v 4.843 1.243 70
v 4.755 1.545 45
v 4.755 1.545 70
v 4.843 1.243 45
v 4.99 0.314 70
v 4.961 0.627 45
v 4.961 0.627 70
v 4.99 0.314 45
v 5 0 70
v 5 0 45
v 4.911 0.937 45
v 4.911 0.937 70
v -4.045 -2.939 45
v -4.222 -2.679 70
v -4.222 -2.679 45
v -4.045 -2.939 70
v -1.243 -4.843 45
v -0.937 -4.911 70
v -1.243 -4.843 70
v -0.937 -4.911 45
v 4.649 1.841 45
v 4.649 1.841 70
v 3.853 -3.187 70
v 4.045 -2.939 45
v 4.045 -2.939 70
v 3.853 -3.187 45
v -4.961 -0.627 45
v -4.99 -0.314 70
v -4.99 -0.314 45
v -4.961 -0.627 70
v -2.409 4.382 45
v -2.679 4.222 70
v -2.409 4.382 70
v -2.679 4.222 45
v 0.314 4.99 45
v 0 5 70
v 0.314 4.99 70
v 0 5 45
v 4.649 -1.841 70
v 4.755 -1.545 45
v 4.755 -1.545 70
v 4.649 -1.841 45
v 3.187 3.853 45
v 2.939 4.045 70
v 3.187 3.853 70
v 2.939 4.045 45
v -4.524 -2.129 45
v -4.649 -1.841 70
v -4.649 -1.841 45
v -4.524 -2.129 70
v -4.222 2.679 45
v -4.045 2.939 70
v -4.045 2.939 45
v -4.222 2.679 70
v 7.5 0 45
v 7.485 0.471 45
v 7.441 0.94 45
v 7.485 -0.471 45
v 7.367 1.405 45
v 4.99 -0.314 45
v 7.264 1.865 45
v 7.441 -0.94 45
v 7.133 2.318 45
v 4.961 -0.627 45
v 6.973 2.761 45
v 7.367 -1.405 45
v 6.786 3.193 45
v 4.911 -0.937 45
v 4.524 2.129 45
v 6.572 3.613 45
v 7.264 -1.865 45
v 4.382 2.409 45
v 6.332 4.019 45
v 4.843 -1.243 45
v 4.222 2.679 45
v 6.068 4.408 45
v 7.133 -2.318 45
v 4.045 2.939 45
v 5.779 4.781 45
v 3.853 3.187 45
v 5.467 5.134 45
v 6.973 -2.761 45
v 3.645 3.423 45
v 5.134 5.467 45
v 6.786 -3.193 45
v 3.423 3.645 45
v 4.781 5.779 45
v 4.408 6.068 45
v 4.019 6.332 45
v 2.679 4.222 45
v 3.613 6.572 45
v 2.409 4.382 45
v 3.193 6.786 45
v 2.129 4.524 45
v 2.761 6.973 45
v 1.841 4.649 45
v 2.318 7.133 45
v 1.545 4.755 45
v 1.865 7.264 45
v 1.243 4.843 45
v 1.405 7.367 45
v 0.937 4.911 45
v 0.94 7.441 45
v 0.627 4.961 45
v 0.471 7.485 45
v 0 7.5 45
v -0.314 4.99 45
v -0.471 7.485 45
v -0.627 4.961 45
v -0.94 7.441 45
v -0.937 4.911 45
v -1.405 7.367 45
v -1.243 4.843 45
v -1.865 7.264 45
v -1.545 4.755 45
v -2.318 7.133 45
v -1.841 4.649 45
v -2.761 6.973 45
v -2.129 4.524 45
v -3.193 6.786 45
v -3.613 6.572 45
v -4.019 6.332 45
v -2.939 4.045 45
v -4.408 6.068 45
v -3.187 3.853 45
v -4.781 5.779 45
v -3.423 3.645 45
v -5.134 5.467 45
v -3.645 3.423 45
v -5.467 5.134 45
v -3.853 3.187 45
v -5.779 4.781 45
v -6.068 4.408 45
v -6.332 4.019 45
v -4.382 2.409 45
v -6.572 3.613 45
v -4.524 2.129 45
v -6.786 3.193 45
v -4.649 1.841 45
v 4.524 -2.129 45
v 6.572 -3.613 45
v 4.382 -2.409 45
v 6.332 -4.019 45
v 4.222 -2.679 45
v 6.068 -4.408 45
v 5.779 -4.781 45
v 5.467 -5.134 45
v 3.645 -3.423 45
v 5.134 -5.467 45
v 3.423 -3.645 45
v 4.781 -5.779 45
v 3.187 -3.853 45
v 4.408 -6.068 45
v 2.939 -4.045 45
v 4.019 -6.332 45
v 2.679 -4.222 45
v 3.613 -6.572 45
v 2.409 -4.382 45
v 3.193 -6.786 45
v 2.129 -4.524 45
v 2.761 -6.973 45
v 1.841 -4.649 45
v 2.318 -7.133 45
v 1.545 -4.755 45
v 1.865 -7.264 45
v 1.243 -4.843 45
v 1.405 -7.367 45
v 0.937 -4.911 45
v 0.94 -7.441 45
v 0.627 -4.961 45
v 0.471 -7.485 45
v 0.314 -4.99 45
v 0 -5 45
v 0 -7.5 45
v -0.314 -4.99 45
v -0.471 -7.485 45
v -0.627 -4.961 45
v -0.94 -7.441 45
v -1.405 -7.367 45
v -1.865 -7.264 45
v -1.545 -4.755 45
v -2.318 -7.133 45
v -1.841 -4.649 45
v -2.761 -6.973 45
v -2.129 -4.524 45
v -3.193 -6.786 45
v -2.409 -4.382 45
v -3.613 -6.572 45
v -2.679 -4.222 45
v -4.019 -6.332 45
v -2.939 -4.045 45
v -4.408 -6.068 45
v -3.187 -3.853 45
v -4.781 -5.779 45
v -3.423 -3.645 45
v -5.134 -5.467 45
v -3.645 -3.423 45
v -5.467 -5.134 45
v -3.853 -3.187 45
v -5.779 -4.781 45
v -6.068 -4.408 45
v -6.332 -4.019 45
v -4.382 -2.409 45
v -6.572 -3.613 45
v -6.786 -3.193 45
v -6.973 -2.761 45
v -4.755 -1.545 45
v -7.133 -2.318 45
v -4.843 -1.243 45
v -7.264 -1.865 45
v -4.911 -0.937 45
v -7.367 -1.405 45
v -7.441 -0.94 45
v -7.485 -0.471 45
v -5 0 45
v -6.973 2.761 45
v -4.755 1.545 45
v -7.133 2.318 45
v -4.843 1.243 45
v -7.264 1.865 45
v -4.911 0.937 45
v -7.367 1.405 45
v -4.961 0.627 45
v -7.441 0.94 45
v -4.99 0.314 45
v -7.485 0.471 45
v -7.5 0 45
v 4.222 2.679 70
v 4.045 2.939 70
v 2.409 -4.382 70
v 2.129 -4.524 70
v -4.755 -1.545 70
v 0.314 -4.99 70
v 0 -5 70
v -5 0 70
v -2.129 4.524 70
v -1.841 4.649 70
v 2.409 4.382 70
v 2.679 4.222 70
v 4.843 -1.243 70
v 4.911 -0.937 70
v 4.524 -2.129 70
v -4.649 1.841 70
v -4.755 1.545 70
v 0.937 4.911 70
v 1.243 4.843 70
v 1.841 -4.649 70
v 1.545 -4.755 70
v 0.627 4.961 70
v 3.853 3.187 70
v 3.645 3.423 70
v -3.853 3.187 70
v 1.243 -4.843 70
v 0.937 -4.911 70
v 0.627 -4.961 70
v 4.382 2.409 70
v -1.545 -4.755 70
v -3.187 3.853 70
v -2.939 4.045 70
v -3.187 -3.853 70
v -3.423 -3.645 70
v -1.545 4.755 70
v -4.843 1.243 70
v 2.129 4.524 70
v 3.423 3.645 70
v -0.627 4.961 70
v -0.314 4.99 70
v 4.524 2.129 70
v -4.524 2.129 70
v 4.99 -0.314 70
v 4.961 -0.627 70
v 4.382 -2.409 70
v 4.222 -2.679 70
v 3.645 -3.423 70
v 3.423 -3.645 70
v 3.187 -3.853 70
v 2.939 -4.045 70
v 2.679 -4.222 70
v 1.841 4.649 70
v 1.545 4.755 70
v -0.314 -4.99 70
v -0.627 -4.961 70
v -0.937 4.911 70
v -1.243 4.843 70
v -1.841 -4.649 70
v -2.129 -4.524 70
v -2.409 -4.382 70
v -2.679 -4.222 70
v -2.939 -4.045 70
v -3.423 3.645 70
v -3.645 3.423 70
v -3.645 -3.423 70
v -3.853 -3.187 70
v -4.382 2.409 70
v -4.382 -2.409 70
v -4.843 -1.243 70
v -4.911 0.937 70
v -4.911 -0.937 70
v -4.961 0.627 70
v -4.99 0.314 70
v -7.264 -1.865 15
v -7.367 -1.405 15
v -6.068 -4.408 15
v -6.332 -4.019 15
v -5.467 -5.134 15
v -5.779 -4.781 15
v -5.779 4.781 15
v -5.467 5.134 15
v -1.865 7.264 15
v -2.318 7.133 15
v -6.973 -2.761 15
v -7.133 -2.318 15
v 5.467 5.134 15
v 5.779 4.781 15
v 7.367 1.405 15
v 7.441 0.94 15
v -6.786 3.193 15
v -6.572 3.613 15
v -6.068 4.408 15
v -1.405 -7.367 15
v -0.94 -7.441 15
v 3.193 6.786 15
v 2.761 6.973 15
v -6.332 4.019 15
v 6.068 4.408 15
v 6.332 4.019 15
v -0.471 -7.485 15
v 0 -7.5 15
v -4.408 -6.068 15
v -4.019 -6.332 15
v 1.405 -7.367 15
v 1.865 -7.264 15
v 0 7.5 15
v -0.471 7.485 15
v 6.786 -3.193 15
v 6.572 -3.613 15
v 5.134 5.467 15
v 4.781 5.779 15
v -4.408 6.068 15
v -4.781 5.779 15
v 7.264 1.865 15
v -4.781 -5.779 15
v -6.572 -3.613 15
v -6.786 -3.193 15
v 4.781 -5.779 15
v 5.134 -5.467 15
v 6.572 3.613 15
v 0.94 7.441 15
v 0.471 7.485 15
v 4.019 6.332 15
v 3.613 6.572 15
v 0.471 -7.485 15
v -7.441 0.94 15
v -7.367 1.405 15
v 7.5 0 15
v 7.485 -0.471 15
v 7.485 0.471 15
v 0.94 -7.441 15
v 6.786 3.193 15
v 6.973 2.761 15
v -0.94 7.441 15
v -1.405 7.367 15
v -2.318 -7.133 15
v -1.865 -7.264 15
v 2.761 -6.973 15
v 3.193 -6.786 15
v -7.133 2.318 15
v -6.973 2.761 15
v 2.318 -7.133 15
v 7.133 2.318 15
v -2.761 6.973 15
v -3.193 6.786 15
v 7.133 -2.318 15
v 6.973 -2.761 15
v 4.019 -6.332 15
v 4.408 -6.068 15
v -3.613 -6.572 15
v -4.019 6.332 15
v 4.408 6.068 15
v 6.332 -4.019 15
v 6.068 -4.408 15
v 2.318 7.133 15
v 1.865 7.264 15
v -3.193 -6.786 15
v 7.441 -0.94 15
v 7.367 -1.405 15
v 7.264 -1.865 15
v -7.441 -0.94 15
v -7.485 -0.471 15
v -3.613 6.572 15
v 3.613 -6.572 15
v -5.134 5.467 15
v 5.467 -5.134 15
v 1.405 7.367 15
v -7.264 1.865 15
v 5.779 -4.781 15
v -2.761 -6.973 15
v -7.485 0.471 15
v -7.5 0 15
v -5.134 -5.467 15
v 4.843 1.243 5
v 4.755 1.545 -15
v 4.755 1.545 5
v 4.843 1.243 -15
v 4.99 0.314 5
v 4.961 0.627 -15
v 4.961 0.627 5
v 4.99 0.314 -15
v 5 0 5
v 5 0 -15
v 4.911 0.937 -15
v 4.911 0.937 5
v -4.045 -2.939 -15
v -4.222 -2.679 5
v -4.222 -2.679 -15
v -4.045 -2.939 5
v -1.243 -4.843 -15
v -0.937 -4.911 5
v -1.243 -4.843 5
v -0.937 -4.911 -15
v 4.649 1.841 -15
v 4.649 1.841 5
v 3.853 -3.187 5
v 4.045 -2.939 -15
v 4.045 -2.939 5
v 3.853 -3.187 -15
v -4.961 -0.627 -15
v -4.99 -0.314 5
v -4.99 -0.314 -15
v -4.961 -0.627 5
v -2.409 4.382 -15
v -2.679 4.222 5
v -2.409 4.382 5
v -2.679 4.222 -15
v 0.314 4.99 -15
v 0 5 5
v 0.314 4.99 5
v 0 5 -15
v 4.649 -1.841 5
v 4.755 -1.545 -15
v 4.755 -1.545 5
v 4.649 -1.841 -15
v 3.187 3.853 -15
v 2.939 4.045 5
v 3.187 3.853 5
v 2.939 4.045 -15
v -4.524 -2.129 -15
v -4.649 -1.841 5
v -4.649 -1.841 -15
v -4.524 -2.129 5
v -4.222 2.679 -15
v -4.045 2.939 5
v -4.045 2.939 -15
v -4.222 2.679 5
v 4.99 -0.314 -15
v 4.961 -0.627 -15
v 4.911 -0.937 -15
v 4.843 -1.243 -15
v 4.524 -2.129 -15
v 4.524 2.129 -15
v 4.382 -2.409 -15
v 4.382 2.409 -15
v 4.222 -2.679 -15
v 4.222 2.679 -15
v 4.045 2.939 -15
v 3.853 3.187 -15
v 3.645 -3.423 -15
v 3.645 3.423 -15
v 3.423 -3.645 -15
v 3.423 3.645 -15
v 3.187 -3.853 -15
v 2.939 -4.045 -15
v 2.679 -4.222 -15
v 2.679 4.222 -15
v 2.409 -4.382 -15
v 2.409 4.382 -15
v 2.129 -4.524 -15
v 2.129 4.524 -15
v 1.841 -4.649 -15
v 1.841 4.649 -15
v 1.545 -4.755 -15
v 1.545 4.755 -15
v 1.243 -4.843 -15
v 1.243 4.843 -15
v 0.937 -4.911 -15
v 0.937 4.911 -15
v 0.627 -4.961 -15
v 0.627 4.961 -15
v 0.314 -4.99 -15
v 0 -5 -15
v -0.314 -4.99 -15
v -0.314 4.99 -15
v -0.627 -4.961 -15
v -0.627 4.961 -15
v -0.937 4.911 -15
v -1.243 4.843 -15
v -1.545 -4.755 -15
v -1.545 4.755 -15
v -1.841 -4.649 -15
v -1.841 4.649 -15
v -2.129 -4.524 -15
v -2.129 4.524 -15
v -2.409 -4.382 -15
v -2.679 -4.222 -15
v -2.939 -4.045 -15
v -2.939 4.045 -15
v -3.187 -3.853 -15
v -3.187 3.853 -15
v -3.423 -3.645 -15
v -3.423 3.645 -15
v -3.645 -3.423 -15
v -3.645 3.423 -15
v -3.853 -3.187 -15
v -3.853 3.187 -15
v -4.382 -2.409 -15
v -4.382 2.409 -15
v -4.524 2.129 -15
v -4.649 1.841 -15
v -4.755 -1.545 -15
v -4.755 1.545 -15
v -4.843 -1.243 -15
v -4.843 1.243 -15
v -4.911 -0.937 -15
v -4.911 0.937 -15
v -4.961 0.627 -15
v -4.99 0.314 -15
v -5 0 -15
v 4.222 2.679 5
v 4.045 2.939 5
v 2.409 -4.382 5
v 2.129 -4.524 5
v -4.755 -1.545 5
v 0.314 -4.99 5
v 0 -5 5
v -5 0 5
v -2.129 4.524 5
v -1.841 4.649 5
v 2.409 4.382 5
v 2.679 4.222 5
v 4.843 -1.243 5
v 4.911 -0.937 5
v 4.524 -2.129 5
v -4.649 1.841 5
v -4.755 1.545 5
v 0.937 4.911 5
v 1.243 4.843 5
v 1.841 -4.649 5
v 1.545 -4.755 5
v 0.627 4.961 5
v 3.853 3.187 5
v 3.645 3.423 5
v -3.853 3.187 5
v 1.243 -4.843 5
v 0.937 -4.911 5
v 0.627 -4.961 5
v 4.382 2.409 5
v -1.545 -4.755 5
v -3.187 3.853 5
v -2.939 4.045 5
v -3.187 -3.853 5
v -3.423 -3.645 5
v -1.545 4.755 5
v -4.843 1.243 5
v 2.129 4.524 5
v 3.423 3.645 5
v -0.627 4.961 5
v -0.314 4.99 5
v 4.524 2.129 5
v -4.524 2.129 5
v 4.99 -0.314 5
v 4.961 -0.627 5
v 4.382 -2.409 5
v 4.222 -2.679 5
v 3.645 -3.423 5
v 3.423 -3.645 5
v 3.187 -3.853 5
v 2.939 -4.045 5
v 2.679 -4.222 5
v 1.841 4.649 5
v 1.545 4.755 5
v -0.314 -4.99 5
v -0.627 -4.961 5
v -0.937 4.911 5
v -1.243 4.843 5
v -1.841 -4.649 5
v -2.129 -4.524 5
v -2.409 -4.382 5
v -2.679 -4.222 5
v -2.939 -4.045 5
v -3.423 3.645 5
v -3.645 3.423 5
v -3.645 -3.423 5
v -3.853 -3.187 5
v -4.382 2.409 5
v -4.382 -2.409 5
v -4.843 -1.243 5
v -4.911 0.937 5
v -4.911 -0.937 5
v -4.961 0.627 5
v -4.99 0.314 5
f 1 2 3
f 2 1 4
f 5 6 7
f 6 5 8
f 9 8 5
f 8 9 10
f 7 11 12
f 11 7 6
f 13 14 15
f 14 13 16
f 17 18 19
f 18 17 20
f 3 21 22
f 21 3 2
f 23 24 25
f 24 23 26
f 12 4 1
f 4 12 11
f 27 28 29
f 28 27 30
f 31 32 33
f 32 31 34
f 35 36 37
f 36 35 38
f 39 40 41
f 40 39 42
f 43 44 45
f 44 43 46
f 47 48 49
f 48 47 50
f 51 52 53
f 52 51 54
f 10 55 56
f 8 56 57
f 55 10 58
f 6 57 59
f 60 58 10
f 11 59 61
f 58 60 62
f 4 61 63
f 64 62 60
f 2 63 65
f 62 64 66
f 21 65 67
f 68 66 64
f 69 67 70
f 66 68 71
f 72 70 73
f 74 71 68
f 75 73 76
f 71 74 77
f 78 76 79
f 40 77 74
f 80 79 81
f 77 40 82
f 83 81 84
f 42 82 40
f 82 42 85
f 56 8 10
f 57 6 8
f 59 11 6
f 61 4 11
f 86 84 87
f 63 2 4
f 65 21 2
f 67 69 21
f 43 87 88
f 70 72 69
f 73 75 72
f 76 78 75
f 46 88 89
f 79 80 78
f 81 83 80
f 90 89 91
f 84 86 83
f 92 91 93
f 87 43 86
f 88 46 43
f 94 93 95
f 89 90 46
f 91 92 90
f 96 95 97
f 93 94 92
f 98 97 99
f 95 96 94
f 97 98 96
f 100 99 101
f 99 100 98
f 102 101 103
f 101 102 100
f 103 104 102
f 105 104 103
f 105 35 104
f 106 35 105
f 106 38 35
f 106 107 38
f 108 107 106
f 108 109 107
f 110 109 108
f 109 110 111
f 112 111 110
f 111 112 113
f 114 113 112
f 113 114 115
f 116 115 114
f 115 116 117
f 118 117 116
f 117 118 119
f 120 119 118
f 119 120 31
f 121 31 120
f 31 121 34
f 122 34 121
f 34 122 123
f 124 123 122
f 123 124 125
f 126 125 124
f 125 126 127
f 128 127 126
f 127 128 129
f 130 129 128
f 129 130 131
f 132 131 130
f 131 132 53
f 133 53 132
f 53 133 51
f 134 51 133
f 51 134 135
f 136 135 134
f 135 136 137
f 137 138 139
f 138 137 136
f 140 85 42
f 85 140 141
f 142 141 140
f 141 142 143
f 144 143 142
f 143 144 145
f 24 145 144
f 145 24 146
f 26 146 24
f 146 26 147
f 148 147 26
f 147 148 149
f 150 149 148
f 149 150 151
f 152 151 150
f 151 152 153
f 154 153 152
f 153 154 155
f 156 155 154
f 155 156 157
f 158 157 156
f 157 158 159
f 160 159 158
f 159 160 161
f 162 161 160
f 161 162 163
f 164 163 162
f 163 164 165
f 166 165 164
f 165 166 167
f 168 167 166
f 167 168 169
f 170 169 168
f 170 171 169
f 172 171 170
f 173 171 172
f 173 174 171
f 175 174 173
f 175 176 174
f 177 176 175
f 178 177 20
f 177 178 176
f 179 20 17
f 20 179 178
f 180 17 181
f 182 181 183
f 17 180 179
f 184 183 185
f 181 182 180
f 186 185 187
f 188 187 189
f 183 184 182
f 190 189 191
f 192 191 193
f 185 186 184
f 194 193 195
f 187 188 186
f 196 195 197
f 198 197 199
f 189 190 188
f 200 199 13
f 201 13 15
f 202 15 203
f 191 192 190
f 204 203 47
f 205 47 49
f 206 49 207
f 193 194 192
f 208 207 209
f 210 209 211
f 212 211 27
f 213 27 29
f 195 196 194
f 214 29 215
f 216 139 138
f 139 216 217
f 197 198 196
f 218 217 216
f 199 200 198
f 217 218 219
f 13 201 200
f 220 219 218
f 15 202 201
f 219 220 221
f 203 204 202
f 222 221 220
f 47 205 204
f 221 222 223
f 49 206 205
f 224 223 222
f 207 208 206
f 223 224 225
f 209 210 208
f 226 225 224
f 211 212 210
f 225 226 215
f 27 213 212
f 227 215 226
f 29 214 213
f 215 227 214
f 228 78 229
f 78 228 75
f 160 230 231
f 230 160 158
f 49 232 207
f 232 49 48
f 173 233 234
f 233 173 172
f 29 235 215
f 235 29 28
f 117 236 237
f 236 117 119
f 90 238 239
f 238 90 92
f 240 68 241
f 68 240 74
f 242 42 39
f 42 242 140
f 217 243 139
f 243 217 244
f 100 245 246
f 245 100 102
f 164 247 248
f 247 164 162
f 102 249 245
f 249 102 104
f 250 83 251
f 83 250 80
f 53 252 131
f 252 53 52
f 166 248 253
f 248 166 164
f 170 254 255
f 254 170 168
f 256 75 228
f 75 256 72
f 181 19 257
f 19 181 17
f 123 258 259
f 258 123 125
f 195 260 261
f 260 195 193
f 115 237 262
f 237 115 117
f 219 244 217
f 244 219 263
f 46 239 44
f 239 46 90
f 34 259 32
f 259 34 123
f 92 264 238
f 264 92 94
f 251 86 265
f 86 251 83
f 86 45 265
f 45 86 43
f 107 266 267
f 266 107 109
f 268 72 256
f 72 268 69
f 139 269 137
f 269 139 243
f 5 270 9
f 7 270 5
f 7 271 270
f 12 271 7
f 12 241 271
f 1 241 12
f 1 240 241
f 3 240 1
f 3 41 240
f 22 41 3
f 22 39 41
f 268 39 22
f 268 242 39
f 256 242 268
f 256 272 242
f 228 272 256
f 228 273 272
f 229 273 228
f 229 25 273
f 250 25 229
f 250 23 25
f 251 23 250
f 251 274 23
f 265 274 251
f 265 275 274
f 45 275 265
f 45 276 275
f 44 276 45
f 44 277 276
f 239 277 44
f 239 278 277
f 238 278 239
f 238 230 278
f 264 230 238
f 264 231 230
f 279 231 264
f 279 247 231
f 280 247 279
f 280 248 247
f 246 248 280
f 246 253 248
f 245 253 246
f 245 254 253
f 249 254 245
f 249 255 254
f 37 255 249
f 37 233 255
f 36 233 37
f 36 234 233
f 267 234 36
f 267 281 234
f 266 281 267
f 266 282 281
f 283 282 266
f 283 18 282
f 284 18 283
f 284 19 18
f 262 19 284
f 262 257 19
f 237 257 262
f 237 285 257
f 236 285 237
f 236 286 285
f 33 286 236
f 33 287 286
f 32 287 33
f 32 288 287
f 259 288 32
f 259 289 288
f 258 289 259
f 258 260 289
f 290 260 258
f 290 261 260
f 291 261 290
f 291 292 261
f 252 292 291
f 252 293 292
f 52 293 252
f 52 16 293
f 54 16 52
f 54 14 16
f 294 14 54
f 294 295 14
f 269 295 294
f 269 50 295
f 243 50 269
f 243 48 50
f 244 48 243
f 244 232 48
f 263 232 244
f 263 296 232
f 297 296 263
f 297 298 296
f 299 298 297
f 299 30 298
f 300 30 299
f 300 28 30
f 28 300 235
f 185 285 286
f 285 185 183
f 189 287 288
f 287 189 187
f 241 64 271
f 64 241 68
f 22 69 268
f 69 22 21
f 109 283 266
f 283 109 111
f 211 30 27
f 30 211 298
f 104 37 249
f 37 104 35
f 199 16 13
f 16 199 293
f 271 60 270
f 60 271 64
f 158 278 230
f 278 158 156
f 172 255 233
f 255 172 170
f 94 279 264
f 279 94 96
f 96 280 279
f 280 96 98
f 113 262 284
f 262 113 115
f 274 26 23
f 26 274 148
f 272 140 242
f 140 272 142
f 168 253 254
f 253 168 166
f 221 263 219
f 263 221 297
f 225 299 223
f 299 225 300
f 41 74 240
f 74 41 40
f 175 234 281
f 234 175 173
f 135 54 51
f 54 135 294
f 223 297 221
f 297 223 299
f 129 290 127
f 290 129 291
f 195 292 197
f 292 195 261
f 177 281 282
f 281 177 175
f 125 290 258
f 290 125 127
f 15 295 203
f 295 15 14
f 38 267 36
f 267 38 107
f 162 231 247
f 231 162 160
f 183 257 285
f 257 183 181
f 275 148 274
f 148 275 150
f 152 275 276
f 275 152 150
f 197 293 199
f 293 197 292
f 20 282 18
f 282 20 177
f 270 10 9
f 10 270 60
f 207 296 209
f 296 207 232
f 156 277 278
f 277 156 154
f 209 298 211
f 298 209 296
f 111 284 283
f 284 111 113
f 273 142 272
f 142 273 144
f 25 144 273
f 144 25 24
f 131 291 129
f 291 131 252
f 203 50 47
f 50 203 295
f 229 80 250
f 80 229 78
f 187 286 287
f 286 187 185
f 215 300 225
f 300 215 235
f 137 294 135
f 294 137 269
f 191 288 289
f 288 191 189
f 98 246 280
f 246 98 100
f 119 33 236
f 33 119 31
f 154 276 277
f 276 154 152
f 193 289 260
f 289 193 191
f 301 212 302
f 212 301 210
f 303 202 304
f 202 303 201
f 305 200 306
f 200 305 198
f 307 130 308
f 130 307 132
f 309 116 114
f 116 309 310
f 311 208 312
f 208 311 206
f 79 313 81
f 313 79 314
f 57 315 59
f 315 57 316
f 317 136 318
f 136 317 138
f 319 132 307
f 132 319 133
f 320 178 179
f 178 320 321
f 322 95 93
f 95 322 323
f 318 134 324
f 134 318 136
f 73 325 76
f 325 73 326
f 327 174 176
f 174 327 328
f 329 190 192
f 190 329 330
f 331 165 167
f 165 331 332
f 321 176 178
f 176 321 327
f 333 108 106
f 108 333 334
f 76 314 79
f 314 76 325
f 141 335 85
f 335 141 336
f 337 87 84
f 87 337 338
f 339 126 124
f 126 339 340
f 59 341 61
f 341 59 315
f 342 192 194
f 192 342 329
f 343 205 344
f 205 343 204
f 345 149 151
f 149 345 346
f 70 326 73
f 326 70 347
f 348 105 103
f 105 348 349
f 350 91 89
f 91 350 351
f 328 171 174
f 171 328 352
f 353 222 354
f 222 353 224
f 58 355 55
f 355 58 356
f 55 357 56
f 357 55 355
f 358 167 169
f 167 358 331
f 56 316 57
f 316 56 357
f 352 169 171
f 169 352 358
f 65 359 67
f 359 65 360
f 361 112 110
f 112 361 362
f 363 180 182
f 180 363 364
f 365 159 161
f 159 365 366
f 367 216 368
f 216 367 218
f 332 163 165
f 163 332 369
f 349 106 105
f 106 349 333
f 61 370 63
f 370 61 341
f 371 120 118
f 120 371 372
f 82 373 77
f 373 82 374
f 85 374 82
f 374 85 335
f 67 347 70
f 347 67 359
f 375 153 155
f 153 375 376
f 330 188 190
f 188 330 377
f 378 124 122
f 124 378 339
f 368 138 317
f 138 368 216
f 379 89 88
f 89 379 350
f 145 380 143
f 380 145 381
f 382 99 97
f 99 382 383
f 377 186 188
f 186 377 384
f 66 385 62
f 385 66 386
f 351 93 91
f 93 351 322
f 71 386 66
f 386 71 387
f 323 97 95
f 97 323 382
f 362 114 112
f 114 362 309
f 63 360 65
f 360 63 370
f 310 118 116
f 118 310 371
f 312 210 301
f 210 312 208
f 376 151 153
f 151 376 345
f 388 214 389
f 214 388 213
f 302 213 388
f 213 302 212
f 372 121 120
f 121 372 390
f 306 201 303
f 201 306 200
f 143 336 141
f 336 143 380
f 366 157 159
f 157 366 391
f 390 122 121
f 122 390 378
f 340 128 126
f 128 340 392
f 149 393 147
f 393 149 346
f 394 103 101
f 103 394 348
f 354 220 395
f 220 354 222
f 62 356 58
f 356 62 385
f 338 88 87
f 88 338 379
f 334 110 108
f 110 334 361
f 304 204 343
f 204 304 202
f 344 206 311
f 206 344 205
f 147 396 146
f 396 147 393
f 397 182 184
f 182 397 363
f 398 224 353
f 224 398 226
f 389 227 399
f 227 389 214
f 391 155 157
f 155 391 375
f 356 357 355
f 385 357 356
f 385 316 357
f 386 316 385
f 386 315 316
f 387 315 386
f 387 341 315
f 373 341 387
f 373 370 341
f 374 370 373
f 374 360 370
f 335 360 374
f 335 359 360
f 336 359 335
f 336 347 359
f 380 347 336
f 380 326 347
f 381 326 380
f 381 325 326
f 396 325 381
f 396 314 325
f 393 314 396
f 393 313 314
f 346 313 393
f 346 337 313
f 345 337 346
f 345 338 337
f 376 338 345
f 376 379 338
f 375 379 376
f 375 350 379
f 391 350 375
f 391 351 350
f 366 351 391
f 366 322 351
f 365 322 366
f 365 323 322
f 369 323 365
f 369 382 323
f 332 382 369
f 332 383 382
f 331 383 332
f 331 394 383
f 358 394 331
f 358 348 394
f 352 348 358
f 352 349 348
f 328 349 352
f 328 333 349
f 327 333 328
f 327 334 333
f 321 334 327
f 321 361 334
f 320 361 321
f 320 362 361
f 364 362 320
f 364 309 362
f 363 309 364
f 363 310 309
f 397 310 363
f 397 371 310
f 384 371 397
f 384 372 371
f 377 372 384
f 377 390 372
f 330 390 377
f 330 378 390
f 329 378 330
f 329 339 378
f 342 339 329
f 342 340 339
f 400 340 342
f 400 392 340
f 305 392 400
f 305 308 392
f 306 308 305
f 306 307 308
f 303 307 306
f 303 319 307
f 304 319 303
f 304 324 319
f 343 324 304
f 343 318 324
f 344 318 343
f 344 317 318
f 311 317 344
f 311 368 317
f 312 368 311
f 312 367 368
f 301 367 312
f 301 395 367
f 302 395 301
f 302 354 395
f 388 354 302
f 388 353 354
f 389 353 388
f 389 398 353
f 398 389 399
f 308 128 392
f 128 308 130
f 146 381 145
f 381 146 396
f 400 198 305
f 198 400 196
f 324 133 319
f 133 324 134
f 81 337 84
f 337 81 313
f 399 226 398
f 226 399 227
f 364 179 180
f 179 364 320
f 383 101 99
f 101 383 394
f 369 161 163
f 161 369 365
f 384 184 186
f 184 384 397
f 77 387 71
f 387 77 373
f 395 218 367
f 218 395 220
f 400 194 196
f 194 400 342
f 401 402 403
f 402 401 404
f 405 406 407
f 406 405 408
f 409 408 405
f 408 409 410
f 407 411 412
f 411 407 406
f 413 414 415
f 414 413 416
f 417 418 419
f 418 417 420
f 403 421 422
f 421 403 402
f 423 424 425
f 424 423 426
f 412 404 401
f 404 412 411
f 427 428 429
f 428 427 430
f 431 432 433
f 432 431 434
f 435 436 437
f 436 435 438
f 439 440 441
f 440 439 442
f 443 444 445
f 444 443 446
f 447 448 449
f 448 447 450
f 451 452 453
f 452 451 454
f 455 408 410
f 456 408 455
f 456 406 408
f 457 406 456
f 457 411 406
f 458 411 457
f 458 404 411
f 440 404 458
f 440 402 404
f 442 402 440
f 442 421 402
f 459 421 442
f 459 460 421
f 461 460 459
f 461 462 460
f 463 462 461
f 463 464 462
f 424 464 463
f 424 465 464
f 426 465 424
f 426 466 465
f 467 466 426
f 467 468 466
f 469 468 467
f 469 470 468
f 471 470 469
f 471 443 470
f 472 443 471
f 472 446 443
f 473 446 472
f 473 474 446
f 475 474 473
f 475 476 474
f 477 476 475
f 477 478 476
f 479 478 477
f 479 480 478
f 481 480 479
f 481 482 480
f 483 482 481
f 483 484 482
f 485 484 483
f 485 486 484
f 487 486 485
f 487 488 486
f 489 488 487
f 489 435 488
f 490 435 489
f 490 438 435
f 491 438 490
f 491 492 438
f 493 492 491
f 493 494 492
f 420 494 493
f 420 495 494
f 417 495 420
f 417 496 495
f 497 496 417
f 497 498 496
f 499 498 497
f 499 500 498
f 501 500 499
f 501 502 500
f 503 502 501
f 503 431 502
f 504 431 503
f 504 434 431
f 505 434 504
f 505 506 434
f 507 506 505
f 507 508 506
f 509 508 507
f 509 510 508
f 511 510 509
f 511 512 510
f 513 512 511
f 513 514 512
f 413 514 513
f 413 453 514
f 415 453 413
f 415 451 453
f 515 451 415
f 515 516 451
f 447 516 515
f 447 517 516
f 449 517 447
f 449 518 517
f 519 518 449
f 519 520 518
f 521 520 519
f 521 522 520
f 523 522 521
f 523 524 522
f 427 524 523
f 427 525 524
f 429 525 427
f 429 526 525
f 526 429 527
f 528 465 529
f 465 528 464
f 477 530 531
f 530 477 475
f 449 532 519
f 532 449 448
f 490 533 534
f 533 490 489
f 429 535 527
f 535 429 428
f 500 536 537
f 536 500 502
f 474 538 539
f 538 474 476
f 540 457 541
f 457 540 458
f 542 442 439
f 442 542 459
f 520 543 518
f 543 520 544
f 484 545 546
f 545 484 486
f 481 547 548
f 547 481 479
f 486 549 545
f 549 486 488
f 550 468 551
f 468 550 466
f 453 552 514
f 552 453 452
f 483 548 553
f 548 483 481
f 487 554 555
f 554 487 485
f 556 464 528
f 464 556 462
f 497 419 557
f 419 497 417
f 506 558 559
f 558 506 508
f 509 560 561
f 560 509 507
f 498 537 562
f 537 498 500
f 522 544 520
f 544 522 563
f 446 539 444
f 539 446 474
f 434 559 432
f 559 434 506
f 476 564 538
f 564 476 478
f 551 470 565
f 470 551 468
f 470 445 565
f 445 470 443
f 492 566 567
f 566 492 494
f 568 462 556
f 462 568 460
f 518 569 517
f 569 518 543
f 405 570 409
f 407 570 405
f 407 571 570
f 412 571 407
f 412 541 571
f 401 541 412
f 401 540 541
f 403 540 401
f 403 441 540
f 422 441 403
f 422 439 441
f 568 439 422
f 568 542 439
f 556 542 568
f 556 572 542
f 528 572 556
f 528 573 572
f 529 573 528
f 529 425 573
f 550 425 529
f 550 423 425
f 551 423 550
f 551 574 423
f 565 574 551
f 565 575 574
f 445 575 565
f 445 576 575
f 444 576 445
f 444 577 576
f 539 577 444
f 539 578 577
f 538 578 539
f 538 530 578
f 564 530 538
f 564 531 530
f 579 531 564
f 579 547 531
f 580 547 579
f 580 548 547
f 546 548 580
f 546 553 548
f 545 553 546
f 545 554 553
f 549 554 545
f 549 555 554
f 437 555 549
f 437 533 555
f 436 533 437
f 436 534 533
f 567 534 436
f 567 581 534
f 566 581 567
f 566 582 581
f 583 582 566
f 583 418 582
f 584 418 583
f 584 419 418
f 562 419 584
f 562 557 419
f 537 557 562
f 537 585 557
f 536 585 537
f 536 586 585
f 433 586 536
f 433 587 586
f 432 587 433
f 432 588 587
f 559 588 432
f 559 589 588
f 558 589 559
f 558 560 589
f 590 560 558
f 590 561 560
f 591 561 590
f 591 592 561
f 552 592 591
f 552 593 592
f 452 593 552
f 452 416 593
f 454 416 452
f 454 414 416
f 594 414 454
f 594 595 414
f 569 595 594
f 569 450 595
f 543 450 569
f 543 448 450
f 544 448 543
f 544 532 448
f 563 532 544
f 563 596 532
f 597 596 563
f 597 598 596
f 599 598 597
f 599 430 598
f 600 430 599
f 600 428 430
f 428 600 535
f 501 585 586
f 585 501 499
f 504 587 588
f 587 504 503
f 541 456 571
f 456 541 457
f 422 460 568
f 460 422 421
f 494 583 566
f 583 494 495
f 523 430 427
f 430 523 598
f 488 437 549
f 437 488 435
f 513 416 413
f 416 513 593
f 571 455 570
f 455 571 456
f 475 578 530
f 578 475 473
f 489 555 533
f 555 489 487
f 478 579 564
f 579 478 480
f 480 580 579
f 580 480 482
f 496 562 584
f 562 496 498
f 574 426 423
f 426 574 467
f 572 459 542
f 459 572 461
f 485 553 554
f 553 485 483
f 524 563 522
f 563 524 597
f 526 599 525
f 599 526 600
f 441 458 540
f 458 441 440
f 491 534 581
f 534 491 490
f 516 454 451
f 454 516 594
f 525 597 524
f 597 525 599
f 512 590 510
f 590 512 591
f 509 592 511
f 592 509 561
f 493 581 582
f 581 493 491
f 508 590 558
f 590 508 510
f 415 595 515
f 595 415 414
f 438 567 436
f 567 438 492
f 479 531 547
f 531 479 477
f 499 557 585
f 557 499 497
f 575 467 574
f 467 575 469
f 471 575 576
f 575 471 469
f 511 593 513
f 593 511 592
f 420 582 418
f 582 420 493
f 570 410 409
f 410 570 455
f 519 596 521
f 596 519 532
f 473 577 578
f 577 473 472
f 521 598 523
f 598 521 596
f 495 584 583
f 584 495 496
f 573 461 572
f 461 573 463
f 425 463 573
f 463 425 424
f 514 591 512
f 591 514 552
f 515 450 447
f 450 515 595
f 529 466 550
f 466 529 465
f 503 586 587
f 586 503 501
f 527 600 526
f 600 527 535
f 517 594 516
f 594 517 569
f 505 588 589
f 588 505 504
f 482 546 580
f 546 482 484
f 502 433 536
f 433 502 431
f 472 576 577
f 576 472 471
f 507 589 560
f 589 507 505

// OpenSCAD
// Parameters for the components
module input_craft() {
    // Adjusted to a smooth cylindrical shape
    cylinder(h = 25, d = 10, $fn = 100); // Height: 25, Diameter: 10
}

module central_craft() {
    // Simplified to a smooth cylindrical shape
    cylinder(h = 30, d = 15, $fn = 100); // Height: 30, Diameter: 15
}

module output_craft() {
    // Adjusted to a smooth cylindrical shape
    cylinder(h = 20, d = 10, $fn = 100); // Height: 20, Diameter: 10
}

// Assembly of the flexible coupling
module flexible_coupling() {
    translate([0, 0, 45]) input_craft(); // Position input_craft at the top
    translate([0, 0, 15]) central_craft(); // Position central_craft below input_craft
    translate([0, 0, -15]) output_craft(); // Position output_craft at the bottom
}

// Render the model
flexible_coupling();
